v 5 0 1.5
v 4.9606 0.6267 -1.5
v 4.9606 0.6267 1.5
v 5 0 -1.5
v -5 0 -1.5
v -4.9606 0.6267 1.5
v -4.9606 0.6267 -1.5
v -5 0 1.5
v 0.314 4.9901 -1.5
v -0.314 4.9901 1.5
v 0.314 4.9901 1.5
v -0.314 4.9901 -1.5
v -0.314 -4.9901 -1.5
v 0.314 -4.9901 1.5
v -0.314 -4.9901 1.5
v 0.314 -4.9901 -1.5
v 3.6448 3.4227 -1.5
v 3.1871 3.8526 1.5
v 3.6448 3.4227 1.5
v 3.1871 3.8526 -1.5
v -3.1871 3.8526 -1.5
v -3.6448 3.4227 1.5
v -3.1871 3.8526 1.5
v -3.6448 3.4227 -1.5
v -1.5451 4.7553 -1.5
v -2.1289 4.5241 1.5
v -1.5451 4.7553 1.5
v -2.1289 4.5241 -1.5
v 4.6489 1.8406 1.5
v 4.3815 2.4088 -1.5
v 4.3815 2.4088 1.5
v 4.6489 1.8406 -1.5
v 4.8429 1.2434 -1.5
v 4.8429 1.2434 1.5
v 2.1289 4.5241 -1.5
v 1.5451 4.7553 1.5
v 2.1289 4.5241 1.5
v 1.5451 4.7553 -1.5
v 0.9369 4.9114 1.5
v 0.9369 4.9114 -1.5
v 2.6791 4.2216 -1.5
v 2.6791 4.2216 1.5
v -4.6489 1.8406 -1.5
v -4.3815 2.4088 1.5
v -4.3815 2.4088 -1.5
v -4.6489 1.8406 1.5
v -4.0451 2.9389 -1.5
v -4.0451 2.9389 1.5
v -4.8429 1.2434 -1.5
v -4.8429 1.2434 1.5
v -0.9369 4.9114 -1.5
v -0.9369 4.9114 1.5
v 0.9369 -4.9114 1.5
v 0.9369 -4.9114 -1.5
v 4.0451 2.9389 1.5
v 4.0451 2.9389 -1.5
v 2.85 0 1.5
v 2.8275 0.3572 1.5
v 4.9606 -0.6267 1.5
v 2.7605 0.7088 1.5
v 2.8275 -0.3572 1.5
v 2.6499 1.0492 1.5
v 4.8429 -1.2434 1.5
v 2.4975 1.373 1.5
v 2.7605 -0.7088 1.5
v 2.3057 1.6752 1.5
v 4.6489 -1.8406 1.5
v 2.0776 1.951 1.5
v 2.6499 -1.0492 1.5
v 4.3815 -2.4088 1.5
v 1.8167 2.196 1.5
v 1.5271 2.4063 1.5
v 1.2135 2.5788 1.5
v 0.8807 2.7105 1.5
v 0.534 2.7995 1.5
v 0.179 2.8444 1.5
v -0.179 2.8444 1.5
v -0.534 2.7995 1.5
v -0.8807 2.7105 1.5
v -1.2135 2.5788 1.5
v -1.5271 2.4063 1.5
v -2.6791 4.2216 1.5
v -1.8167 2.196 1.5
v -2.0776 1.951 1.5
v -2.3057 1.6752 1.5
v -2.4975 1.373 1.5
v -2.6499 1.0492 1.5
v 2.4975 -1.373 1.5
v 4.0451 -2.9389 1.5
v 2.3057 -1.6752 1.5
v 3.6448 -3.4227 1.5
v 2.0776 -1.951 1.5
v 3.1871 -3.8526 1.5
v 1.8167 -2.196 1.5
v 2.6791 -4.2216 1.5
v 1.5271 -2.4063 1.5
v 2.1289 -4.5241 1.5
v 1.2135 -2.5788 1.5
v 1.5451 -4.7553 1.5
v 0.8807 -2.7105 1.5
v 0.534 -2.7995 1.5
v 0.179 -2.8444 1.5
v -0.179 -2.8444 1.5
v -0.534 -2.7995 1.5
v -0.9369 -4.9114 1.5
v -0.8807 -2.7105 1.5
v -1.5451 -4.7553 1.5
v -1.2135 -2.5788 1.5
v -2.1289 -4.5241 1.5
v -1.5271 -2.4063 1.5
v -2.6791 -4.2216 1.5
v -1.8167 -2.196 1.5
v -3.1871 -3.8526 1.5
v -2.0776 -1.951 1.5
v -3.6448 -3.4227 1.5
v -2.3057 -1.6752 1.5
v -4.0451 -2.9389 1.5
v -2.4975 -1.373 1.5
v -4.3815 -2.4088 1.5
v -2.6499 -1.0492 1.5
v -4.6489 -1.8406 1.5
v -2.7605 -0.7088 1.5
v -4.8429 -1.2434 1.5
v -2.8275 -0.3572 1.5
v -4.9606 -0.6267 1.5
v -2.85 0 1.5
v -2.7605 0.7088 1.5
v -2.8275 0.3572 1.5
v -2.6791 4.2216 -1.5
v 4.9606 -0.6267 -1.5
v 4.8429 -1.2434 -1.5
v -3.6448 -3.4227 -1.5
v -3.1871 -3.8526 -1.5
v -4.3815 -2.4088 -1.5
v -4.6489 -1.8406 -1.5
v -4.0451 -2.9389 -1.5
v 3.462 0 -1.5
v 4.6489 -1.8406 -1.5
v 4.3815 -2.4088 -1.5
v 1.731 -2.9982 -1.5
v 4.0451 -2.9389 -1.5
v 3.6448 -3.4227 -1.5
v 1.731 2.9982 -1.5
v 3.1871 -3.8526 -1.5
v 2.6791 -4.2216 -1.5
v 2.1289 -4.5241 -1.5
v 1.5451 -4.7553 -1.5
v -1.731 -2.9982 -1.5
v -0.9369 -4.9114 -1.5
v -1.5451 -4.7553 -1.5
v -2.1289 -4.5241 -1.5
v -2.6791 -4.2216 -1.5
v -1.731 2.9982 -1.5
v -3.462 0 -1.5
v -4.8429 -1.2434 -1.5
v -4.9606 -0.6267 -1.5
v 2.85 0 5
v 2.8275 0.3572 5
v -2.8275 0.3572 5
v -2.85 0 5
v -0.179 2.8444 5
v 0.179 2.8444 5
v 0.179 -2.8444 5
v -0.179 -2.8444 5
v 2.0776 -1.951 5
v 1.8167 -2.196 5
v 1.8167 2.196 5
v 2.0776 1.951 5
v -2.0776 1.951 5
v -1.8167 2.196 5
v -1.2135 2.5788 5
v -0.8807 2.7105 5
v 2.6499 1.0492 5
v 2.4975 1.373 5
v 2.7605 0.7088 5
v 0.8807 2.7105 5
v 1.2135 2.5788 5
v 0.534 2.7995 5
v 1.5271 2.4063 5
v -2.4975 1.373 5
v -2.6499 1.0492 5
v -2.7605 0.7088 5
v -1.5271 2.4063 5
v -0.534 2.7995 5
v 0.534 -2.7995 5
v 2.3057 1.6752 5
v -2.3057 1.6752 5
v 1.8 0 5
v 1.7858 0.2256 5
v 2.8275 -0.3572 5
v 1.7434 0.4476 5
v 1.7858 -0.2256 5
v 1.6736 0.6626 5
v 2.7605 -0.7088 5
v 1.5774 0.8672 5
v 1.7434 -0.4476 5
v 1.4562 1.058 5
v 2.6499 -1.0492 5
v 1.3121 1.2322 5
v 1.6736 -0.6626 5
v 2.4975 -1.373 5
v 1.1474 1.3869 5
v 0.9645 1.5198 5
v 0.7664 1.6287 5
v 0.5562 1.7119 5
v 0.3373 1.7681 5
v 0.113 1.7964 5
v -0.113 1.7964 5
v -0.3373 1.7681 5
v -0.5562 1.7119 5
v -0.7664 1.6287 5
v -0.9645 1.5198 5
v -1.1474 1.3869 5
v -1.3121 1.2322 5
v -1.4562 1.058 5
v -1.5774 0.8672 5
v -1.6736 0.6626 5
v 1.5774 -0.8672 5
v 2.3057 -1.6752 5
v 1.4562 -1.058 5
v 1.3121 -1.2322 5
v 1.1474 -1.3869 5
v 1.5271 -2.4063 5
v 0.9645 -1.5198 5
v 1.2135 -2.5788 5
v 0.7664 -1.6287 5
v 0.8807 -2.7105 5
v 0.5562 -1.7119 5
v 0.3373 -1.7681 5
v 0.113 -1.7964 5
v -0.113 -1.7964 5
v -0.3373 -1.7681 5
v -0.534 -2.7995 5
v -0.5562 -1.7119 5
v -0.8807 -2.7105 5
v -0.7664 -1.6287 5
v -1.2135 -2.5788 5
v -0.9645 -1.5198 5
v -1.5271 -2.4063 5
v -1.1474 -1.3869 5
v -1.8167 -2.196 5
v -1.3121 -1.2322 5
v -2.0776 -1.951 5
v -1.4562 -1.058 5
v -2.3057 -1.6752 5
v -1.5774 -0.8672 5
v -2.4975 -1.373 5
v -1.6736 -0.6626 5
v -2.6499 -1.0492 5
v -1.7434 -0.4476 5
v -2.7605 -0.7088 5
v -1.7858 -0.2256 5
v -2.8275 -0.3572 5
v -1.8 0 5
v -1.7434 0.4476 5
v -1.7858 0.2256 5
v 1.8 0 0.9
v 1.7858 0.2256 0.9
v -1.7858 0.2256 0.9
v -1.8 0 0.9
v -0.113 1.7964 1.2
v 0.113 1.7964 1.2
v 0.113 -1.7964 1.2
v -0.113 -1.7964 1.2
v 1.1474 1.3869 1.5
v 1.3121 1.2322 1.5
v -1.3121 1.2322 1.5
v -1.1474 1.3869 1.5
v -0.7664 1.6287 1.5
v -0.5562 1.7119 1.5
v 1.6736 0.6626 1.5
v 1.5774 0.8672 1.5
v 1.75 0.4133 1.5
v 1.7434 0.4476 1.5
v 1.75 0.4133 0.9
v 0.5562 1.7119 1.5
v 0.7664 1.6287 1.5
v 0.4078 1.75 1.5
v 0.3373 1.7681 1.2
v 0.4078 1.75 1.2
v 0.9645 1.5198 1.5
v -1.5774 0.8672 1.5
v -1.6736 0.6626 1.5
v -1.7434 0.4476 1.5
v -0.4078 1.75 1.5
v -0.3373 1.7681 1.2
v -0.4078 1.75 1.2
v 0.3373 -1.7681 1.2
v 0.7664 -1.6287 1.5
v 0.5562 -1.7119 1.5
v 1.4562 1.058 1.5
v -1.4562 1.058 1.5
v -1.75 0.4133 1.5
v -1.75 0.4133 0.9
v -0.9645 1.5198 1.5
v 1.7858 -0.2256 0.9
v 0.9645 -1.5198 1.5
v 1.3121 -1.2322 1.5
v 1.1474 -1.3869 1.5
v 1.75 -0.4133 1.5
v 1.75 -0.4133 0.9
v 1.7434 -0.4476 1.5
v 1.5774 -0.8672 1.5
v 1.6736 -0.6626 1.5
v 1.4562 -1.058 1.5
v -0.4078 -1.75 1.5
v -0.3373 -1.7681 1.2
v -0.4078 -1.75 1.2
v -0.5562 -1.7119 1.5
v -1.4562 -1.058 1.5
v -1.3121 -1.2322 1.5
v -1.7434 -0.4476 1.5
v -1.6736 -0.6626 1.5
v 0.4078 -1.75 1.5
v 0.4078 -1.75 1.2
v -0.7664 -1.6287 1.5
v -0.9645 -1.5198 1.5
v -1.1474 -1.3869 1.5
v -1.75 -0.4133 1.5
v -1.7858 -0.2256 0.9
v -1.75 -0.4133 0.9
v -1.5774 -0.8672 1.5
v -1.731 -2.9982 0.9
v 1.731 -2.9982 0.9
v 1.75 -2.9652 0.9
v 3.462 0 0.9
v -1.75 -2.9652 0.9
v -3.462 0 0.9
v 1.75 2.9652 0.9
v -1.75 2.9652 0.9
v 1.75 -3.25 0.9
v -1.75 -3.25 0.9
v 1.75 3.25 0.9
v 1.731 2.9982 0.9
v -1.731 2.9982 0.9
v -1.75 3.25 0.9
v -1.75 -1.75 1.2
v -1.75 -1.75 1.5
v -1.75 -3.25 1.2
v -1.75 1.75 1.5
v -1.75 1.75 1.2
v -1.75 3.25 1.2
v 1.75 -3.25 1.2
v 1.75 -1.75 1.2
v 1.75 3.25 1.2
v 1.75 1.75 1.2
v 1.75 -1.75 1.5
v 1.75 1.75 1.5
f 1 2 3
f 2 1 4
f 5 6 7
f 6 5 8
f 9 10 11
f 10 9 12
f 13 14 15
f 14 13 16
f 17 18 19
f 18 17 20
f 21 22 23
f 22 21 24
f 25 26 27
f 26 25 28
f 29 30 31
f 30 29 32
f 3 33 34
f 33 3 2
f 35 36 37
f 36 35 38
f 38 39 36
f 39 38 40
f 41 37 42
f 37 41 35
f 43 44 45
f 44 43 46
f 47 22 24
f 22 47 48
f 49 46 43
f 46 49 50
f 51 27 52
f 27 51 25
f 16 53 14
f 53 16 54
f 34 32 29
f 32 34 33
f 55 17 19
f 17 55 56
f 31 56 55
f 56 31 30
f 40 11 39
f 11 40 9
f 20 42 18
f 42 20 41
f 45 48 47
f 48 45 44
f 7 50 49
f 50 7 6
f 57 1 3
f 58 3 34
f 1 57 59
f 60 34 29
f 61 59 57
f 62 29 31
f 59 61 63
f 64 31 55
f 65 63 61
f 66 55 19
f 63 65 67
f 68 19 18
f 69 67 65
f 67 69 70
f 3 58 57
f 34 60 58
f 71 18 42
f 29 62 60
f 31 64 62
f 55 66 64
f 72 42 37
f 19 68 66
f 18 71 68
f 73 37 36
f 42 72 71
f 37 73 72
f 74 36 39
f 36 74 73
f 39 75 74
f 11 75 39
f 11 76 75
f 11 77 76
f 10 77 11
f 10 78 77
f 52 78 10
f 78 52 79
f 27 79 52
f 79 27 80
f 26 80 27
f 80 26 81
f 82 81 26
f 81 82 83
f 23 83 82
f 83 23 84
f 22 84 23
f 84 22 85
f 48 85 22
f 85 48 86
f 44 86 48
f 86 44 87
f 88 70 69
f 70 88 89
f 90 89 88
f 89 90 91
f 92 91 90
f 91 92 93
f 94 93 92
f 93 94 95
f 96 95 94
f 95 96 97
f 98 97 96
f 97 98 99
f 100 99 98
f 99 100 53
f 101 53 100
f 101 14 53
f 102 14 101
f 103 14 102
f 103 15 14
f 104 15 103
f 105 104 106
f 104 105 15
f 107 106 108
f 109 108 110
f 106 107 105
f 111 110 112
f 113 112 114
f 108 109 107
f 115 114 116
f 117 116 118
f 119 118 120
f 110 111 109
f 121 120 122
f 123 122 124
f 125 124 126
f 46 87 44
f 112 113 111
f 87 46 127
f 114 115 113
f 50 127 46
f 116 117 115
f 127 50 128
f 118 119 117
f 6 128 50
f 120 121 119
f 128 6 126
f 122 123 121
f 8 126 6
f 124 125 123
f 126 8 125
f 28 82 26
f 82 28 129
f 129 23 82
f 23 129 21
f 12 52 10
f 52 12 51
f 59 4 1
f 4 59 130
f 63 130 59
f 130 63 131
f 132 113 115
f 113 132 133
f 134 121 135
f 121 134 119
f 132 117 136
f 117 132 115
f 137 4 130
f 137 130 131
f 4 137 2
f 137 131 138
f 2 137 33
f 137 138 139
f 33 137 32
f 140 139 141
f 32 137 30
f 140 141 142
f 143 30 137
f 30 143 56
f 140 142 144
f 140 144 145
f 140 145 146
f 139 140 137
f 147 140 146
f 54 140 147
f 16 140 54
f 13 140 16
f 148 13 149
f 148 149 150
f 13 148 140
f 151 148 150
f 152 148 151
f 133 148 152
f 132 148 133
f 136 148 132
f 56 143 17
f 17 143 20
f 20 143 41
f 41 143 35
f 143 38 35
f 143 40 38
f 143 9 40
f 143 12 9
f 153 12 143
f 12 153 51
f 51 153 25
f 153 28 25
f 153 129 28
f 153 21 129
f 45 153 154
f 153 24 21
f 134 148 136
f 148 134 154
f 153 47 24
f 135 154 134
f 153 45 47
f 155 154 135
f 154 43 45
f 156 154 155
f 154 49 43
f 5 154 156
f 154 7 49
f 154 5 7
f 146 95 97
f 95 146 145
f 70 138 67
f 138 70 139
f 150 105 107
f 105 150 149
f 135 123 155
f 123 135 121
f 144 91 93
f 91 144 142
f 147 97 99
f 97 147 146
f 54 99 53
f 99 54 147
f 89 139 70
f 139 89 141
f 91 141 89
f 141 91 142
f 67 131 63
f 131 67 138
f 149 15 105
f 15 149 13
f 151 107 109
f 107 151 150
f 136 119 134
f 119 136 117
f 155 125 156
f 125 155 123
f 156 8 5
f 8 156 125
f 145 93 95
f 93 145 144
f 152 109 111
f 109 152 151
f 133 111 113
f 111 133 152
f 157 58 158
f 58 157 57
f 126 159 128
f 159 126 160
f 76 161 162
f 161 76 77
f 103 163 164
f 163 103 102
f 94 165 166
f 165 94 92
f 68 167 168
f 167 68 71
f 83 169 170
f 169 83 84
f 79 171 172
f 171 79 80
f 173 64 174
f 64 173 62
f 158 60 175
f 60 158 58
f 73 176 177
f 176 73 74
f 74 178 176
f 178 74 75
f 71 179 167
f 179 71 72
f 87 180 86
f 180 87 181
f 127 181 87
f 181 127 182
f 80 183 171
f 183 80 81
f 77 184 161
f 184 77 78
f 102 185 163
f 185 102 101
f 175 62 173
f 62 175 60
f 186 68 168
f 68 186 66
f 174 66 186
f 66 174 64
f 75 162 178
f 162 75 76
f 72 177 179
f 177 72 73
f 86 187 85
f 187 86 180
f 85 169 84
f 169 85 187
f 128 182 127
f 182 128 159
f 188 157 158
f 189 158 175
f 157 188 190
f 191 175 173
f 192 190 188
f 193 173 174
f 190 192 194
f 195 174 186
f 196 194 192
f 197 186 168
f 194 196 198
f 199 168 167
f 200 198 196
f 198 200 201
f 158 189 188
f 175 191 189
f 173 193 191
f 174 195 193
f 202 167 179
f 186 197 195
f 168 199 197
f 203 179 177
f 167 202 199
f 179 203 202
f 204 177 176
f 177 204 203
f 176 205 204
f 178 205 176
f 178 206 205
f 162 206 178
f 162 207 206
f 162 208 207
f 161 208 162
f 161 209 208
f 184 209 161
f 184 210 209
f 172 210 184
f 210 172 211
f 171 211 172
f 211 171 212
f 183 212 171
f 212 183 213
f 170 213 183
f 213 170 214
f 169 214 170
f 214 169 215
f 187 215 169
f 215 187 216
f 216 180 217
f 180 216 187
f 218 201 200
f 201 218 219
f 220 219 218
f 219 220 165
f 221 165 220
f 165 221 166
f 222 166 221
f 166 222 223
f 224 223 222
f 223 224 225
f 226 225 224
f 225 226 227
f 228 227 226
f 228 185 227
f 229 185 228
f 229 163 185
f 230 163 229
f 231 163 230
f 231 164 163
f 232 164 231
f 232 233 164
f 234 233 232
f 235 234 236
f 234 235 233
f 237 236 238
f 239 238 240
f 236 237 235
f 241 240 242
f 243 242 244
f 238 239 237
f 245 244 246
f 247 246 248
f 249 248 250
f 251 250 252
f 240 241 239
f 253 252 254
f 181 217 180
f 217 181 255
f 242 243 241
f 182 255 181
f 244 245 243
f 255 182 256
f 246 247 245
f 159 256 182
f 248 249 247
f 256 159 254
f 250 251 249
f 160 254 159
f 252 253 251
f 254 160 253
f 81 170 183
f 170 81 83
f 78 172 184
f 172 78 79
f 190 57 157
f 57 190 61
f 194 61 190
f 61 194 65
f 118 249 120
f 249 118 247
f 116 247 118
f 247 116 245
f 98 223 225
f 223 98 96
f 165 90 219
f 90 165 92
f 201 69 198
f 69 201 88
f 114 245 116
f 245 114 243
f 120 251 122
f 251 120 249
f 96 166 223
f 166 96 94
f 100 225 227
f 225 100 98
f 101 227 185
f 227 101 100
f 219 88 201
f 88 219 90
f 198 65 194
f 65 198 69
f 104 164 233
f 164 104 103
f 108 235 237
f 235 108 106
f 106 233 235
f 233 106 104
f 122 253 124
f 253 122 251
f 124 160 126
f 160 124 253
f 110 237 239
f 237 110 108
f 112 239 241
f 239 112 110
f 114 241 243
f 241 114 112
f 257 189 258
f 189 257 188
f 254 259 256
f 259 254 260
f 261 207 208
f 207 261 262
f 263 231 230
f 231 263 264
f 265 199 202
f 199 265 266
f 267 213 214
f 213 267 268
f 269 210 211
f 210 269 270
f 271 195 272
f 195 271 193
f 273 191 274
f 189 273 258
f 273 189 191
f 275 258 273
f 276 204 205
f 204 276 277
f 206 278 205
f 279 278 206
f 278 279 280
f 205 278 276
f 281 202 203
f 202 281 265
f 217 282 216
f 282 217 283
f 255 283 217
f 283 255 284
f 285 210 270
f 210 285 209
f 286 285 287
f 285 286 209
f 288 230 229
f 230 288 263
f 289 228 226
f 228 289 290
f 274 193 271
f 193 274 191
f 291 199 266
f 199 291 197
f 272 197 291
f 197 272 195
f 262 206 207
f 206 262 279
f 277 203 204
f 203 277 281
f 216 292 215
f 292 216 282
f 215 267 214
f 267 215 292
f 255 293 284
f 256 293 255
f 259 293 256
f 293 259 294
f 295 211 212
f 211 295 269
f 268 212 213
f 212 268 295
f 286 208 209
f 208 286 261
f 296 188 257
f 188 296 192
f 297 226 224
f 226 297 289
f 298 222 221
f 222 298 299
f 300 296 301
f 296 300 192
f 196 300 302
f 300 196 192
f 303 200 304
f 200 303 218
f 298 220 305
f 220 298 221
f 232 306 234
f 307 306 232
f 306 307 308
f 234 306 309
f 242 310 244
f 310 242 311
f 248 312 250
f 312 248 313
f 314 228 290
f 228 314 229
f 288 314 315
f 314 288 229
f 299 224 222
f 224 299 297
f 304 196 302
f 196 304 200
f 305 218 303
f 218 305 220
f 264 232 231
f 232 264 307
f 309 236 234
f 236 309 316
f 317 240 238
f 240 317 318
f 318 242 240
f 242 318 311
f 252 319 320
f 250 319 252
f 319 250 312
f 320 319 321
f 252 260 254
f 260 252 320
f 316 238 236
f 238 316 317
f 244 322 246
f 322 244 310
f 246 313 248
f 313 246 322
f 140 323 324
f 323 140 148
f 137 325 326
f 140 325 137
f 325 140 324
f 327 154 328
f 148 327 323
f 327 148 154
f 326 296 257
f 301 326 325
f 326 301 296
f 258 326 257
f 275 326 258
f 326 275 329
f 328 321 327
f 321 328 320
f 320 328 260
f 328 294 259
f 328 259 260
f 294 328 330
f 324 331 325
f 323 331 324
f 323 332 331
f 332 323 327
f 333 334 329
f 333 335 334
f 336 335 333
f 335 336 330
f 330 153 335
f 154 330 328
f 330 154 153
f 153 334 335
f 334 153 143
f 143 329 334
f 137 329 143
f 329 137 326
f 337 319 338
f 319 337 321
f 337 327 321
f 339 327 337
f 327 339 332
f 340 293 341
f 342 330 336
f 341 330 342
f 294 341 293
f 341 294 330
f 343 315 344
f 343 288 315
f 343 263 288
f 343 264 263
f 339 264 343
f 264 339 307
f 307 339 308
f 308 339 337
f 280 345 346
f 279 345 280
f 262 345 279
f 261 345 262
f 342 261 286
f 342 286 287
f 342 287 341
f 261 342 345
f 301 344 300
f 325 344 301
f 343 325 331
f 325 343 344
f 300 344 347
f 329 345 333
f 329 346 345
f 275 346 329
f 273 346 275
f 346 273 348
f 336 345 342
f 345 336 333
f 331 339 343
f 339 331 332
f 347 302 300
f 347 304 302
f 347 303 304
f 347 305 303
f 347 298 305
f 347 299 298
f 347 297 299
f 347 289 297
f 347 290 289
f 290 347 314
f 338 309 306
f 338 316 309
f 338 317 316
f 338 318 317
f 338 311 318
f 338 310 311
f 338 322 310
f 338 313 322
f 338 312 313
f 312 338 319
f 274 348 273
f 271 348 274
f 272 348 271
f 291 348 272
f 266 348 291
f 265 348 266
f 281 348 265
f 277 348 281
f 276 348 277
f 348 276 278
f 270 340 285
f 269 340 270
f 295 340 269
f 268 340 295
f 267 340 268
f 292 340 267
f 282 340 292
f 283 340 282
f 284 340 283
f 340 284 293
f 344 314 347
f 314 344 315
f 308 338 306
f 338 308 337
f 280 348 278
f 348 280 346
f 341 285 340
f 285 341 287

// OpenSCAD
$fn = 50;


difference() {
	union() {
		translate(v = [0, 0, -1.5000000000]) {
			rotate(a = [0, 0, 0]) {
				cylinder(h = 3, r = 5.0000000000);
			}
		}
		translate(v = [0, 0, -1.5000000000]) {
			rotate(a = [0, 0, 0]) {
				cylinder(h = 6.5000000000, r = 2.8500000000);
			}
		}
	}
	union() {
		translate(v = [0, 0, -125.0000000000]) {
			rotate(a = [0, 0, 0]) {
				cylinder(h = 250, r = 1.8000000000);
			}
		}
		translate(v = [0, 0, -2.1000000000]) {
			rotate(a = [0, 0, 0]) {
				#translate(v = [0, 0, 0]) {
					rotate(a = [0, 0, 0]) {
						linear_extrude(height = 3) {
							polygon(points = [[3.4620000000, 0.0000000000], [1.7310000000, 2.9981799479], [-1.7310000000, 2.9981799479], [-3.4620000000, 0.0000000000], [-1.7310000000, -2.9981799479], [1.7310000000, -2.9981799479]]);
						}
					}
				}
			}
		}
		#translate(v = [-1.7500000000, -3.2500000000, 0.9000000000]) {
			rotate(a = [0, 0, 0]) {
				cube(size = [3.5000000000, 6.5000000000, 0.3000000000]);
			}
		}
		#translate(v = [-1.7500000000, -1.7500000000, 1.2000000000]) {
			rotate(a = [0, 0, 0]) {
				cube(size = [3.5000000000, 3.5000000000, 0.3000000000]);
			}
		}
		#translate(v = [-1.7500000000, -3.2500000000, -2.4000000000]) {
			rotate(a = [0, 0, 0]) {
				cube(size = [3.5000000000, 6.5000000000, 0.3000000000]);
			}
		}
		#translate(v = [-1.7500000000, -1.7500000000, -2.7000000000]) {
			rotate(a = [0, 0, 0]) {
				cube(size = [3.5000000000, 3.5000000000, 0.3000000000]);
			}
		}
	}
}
